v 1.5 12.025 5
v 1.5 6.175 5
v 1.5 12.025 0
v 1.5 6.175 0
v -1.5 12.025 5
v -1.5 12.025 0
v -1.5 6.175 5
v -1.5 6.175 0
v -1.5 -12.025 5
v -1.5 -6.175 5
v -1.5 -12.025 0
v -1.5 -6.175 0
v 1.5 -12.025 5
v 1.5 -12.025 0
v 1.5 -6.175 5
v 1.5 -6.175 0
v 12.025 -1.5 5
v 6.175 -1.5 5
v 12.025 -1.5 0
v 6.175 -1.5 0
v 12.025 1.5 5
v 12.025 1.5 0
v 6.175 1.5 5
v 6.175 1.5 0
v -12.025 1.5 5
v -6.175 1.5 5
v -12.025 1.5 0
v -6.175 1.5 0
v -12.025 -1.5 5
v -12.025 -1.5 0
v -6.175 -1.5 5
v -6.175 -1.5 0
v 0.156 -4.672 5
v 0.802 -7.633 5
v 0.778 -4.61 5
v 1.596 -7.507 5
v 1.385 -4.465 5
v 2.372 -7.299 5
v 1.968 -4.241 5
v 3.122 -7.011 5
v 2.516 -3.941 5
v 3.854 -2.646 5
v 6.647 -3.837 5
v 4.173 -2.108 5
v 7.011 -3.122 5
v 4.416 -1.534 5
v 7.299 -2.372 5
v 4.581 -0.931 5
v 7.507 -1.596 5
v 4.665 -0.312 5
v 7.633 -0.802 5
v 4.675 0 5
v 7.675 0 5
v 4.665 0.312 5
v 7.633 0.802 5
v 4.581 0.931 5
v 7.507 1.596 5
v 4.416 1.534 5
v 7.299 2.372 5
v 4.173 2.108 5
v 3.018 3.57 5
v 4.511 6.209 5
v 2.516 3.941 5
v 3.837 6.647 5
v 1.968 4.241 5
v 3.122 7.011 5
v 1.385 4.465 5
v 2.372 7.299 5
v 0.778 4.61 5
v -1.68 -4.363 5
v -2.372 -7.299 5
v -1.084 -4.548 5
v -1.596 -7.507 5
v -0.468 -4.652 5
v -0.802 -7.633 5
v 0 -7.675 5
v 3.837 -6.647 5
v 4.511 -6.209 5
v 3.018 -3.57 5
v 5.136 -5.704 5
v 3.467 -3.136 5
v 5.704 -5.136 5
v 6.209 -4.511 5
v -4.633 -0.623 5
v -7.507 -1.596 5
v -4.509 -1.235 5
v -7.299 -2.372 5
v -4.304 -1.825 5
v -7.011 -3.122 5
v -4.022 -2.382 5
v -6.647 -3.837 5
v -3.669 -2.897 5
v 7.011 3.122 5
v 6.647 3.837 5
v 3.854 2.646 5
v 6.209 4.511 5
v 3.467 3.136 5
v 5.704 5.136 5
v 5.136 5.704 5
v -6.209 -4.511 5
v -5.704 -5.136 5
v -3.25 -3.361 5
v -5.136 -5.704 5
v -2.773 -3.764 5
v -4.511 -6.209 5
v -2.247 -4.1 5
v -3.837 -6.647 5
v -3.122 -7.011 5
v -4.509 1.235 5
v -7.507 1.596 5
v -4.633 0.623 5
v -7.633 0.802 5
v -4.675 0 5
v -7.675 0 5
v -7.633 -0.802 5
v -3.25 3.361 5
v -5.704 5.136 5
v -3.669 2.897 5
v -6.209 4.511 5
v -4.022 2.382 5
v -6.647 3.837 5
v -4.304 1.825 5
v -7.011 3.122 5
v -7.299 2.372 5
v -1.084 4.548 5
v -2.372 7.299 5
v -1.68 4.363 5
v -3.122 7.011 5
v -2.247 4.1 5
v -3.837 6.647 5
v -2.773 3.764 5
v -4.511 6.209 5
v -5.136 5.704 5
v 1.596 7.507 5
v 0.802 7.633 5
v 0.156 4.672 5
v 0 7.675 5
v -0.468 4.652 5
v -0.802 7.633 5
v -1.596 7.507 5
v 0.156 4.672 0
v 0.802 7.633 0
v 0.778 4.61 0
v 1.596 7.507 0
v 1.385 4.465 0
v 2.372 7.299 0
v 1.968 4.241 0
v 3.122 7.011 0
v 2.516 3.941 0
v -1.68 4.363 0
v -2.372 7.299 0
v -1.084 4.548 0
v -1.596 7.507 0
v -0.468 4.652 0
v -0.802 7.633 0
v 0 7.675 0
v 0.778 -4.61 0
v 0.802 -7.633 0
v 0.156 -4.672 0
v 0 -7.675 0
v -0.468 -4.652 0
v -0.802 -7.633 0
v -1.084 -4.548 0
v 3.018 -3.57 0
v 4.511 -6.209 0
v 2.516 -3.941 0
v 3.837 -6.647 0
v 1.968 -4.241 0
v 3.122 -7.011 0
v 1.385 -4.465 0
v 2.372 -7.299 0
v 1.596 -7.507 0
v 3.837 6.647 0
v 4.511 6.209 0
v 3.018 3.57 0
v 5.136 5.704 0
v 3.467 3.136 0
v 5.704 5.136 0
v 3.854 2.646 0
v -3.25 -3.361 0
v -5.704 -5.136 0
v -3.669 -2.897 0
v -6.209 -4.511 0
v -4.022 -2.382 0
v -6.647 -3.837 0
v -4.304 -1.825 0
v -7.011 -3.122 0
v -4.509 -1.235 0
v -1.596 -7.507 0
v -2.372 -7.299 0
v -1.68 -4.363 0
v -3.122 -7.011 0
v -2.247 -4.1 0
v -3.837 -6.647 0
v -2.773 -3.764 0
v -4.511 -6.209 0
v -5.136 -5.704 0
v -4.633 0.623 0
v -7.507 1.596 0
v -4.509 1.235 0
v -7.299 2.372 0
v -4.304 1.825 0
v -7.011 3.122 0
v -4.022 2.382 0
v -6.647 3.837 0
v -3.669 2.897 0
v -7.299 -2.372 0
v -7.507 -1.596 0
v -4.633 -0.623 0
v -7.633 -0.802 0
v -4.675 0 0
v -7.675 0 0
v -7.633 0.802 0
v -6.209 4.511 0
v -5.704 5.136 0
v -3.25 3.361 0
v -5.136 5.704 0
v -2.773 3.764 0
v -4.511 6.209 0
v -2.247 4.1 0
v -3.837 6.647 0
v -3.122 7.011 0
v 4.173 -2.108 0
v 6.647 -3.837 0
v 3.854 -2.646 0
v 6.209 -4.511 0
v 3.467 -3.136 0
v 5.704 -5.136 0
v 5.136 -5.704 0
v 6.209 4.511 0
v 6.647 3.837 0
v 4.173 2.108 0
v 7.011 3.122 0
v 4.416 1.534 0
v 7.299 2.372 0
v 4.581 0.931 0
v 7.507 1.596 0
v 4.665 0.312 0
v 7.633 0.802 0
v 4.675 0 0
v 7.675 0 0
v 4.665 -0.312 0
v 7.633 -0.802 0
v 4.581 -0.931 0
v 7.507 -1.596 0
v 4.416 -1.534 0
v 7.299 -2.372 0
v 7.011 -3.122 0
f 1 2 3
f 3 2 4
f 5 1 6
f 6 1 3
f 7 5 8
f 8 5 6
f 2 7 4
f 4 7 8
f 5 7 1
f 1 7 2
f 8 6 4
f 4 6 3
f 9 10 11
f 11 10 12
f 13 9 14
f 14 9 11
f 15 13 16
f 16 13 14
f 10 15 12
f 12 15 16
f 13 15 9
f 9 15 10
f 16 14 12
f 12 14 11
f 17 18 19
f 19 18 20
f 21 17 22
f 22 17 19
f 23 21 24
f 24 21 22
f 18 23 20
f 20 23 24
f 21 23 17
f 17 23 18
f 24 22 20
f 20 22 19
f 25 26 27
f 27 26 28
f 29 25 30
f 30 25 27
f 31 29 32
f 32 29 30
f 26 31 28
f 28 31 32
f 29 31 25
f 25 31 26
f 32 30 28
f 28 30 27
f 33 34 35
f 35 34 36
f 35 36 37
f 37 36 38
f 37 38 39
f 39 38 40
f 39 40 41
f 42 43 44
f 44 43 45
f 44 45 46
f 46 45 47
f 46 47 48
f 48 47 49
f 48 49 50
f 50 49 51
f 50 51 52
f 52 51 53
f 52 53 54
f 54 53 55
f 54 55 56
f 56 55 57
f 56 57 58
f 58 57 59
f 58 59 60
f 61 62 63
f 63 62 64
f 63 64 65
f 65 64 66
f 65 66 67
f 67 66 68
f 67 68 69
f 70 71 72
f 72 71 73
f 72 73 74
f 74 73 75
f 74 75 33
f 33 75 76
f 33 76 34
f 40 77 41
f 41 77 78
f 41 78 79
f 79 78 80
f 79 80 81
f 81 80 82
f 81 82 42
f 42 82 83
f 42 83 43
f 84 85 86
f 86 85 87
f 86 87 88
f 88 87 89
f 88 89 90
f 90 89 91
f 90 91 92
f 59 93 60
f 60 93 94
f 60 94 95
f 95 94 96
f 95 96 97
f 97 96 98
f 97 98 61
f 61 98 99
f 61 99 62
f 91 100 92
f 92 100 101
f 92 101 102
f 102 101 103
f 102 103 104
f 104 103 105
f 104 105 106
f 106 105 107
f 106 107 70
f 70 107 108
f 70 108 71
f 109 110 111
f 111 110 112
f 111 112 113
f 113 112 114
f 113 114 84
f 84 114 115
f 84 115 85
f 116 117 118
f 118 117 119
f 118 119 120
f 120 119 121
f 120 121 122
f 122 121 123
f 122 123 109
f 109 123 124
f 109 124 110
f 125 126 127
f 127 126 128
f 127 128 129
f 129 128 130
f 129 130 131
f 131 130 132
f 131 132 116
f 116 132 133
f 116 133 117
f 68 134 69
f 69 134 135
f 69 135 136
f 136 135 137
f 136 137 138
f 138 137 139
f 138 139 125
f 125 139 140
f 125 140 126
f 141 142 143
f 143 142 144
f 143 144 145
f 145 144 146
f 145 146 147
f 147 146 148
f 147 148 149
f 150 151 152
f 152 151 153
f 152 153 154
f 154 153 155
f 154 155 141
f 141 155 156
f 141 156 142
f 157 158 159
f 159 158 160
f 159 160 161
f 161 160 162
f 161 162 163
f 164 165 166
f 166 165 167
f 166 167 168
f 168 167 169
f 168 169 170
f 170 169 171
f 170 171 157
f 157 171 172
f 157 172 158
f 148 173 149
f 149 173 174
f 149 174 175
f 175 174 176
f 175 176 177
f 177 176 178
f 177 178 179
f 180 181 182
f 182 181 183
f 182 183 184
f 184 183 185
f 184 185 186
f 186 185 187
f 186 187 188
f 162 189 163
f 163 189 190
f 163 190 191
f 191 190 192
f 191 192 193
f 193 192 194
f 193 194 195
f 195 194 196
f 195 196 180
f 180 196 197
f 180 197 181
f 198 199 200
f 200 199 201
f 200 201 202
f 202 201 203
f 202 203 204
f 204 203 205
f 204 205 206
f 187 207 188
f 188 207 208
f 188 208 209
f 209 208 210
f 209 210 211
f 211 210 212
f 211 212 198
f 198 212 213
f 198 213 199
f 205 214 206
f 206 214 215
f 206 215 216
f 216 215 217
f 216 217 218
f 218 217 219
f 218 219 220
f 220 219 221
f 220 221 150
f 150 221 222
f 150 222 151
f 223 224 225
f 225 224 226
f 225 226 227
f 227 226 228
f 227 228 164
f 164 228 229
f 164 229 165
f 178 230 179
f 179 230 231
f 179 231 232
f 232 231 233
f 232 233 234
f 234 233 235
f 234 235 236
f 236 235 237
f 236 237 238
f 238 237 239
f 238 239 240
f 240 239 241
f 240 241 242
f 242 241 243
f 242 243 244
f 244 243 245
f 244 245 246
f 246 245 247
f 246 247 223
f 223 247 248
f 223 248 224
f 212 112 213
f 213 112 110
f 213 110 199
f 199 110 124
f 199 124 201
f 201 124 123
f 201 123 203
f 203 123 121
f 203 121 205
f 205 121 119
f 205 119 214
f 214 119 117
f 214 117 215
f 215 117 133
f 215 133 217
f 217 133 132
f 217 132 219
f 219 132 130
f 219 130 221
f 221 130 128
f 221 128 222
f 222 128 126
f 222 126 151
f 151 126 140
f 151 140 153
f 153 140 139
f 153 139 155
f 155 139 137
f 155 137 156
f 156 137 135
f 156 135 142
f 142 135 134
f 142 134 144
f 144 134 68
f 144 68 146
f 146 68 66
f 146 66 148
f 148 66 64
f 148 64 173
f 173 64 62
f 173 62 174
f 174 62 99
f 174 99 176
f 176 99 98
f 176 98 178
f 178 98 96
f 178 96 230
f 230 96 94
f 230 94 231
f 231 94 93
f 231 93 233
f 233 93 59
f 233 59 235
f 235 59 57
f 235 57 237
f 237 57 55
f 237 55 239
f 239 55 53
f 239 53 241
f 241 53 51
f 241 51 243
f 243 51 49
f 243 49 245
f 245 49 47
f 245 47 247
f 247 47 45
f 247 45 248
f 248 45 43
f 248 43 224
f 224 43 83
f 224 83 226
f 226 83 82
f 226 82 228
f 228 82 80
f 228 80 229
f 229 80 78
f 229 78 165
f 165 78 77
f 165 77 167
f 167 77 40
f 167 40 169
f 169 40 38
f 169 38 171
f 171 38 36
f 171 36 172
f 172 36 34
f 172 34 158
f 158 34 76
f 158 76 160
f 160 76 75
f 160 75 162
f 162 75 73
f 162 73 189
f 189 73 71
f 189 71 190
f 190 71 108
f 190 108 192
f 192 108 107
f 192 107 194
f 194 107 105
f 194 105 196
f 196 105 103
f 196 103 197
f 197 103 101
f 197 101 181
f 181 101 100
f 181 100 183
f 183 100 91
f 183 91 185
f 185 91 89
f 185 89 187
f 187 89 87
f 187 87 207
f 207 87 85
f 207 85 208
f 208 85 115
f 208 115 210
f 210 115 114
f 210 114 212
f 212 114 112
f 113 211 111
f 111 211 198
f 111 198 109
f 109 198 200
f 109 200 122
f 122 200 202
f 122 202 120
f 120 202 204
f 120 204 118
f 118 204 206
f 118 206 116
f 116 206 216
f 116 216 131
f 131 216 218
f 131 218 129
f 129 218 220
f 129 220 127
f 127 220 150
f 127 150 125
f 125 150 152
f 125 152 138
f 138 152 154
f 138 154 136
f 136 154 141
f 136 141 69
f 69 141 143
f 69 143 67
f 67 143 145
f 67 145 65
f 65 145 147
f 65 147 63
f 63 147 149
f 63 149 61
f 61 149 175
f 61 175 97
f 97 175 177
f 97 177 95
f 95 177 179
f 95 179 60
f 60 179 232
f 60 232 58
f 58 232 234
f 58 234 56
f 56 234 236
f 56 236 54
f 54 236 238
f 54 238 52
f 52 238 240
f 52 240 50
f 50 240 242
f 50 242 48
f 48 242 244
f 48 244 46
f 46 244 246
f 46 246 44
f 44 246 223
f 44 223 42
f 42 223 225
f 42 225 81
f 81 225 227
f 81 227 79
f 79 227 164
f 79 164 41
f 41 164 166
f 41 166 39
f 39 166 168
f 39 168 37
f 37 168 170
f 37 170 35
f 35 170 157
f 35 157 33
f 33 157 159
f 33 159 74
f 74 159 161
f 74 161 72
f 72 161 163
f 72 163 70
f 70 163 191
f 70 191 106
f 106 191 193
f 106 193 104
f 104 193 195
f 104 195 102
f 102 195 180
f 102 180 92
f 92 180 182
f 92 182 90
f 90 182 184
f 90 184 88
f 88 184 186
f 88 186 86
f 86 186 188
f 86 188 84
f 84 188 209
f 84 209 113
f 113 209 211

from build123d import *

# Parameters (mm, degrees)
SKETCH1_R             = 7.675
SKETCH1_R_2           = 4.675
EXTRUDE_THIN1_DEPTH   = 5
SKETCH1_W             = 3
SKETCH1_H             = 5.85
EXTRUDE_THIN1_2_DEPTH = 5
EXTRUDE_THIN1_3_DEPTH = 5
SKETCH1_W_2           = 5.85
SKETCH1_H_2           = 3
EXTRUDE_THIN1_4_DEPTH = 5
EXTRUDE_THIN1_5_DEPTH = 5


with BuildPart() as part:
    # Sketch1 → Extrude-Thin1 (new body)
    with BuildSketch(Plane.XY):
        Circle(SKETCH1_R)
        Circle(SKETCH1_R_2, mode=Mode.SUBTRACT)
    extrude(amount=EXTRUDE_THIN1_DEPTH)


with BuildPart() as body_2:
    # Sketch1 → Extrude-Thin1 2 (new body)
    with BuildSketch(Plane.XY):
        with Locations((0, 9.1)):
            Rectangle(SKETCH1_W, SKETCH1_H)
    extrude(amount=EXTRUDE_THIN1_2_DEPTH)


with BuildPart() as body_3:
    # Sketch1 → Extrude-Thin1 3 (new body)
    with BuildSketch(Plane.XY):
        with Locations((0, -9.1)):
            Rectangle(SKETCH1_W, SKETCH1_H)
    extrude(amount=EXTRUDE_THIN1_3_DEPTH)


with BuildPart() as body_4:
    # Sketch1 → Extrude-Thin1 4 (new body)
    with BuildSketch(Plane.XY):
        with Locations((9.1, 0)):
            Rectangle(SKETCH1_W_2, SKETCH1_H_2)
    extrude(amount=EXTRUDE_THIN1_4_DEPTH)


with BuildPart() as body_5:
    # Sketch1 → Extrude-Thin1 5 (new body)
    with BuildSketch(Plane.XY):
        with Locations((-9.1, 0)):
            Rectangle(SKETCH1_W_2, SKETCH1_H_2)
    extrude(amount=EXTRUDE_THIN1_5_DEPTH)


solid = Compound([part.part, body_2.part, body_3.part, body_4.part, body_5.part])
